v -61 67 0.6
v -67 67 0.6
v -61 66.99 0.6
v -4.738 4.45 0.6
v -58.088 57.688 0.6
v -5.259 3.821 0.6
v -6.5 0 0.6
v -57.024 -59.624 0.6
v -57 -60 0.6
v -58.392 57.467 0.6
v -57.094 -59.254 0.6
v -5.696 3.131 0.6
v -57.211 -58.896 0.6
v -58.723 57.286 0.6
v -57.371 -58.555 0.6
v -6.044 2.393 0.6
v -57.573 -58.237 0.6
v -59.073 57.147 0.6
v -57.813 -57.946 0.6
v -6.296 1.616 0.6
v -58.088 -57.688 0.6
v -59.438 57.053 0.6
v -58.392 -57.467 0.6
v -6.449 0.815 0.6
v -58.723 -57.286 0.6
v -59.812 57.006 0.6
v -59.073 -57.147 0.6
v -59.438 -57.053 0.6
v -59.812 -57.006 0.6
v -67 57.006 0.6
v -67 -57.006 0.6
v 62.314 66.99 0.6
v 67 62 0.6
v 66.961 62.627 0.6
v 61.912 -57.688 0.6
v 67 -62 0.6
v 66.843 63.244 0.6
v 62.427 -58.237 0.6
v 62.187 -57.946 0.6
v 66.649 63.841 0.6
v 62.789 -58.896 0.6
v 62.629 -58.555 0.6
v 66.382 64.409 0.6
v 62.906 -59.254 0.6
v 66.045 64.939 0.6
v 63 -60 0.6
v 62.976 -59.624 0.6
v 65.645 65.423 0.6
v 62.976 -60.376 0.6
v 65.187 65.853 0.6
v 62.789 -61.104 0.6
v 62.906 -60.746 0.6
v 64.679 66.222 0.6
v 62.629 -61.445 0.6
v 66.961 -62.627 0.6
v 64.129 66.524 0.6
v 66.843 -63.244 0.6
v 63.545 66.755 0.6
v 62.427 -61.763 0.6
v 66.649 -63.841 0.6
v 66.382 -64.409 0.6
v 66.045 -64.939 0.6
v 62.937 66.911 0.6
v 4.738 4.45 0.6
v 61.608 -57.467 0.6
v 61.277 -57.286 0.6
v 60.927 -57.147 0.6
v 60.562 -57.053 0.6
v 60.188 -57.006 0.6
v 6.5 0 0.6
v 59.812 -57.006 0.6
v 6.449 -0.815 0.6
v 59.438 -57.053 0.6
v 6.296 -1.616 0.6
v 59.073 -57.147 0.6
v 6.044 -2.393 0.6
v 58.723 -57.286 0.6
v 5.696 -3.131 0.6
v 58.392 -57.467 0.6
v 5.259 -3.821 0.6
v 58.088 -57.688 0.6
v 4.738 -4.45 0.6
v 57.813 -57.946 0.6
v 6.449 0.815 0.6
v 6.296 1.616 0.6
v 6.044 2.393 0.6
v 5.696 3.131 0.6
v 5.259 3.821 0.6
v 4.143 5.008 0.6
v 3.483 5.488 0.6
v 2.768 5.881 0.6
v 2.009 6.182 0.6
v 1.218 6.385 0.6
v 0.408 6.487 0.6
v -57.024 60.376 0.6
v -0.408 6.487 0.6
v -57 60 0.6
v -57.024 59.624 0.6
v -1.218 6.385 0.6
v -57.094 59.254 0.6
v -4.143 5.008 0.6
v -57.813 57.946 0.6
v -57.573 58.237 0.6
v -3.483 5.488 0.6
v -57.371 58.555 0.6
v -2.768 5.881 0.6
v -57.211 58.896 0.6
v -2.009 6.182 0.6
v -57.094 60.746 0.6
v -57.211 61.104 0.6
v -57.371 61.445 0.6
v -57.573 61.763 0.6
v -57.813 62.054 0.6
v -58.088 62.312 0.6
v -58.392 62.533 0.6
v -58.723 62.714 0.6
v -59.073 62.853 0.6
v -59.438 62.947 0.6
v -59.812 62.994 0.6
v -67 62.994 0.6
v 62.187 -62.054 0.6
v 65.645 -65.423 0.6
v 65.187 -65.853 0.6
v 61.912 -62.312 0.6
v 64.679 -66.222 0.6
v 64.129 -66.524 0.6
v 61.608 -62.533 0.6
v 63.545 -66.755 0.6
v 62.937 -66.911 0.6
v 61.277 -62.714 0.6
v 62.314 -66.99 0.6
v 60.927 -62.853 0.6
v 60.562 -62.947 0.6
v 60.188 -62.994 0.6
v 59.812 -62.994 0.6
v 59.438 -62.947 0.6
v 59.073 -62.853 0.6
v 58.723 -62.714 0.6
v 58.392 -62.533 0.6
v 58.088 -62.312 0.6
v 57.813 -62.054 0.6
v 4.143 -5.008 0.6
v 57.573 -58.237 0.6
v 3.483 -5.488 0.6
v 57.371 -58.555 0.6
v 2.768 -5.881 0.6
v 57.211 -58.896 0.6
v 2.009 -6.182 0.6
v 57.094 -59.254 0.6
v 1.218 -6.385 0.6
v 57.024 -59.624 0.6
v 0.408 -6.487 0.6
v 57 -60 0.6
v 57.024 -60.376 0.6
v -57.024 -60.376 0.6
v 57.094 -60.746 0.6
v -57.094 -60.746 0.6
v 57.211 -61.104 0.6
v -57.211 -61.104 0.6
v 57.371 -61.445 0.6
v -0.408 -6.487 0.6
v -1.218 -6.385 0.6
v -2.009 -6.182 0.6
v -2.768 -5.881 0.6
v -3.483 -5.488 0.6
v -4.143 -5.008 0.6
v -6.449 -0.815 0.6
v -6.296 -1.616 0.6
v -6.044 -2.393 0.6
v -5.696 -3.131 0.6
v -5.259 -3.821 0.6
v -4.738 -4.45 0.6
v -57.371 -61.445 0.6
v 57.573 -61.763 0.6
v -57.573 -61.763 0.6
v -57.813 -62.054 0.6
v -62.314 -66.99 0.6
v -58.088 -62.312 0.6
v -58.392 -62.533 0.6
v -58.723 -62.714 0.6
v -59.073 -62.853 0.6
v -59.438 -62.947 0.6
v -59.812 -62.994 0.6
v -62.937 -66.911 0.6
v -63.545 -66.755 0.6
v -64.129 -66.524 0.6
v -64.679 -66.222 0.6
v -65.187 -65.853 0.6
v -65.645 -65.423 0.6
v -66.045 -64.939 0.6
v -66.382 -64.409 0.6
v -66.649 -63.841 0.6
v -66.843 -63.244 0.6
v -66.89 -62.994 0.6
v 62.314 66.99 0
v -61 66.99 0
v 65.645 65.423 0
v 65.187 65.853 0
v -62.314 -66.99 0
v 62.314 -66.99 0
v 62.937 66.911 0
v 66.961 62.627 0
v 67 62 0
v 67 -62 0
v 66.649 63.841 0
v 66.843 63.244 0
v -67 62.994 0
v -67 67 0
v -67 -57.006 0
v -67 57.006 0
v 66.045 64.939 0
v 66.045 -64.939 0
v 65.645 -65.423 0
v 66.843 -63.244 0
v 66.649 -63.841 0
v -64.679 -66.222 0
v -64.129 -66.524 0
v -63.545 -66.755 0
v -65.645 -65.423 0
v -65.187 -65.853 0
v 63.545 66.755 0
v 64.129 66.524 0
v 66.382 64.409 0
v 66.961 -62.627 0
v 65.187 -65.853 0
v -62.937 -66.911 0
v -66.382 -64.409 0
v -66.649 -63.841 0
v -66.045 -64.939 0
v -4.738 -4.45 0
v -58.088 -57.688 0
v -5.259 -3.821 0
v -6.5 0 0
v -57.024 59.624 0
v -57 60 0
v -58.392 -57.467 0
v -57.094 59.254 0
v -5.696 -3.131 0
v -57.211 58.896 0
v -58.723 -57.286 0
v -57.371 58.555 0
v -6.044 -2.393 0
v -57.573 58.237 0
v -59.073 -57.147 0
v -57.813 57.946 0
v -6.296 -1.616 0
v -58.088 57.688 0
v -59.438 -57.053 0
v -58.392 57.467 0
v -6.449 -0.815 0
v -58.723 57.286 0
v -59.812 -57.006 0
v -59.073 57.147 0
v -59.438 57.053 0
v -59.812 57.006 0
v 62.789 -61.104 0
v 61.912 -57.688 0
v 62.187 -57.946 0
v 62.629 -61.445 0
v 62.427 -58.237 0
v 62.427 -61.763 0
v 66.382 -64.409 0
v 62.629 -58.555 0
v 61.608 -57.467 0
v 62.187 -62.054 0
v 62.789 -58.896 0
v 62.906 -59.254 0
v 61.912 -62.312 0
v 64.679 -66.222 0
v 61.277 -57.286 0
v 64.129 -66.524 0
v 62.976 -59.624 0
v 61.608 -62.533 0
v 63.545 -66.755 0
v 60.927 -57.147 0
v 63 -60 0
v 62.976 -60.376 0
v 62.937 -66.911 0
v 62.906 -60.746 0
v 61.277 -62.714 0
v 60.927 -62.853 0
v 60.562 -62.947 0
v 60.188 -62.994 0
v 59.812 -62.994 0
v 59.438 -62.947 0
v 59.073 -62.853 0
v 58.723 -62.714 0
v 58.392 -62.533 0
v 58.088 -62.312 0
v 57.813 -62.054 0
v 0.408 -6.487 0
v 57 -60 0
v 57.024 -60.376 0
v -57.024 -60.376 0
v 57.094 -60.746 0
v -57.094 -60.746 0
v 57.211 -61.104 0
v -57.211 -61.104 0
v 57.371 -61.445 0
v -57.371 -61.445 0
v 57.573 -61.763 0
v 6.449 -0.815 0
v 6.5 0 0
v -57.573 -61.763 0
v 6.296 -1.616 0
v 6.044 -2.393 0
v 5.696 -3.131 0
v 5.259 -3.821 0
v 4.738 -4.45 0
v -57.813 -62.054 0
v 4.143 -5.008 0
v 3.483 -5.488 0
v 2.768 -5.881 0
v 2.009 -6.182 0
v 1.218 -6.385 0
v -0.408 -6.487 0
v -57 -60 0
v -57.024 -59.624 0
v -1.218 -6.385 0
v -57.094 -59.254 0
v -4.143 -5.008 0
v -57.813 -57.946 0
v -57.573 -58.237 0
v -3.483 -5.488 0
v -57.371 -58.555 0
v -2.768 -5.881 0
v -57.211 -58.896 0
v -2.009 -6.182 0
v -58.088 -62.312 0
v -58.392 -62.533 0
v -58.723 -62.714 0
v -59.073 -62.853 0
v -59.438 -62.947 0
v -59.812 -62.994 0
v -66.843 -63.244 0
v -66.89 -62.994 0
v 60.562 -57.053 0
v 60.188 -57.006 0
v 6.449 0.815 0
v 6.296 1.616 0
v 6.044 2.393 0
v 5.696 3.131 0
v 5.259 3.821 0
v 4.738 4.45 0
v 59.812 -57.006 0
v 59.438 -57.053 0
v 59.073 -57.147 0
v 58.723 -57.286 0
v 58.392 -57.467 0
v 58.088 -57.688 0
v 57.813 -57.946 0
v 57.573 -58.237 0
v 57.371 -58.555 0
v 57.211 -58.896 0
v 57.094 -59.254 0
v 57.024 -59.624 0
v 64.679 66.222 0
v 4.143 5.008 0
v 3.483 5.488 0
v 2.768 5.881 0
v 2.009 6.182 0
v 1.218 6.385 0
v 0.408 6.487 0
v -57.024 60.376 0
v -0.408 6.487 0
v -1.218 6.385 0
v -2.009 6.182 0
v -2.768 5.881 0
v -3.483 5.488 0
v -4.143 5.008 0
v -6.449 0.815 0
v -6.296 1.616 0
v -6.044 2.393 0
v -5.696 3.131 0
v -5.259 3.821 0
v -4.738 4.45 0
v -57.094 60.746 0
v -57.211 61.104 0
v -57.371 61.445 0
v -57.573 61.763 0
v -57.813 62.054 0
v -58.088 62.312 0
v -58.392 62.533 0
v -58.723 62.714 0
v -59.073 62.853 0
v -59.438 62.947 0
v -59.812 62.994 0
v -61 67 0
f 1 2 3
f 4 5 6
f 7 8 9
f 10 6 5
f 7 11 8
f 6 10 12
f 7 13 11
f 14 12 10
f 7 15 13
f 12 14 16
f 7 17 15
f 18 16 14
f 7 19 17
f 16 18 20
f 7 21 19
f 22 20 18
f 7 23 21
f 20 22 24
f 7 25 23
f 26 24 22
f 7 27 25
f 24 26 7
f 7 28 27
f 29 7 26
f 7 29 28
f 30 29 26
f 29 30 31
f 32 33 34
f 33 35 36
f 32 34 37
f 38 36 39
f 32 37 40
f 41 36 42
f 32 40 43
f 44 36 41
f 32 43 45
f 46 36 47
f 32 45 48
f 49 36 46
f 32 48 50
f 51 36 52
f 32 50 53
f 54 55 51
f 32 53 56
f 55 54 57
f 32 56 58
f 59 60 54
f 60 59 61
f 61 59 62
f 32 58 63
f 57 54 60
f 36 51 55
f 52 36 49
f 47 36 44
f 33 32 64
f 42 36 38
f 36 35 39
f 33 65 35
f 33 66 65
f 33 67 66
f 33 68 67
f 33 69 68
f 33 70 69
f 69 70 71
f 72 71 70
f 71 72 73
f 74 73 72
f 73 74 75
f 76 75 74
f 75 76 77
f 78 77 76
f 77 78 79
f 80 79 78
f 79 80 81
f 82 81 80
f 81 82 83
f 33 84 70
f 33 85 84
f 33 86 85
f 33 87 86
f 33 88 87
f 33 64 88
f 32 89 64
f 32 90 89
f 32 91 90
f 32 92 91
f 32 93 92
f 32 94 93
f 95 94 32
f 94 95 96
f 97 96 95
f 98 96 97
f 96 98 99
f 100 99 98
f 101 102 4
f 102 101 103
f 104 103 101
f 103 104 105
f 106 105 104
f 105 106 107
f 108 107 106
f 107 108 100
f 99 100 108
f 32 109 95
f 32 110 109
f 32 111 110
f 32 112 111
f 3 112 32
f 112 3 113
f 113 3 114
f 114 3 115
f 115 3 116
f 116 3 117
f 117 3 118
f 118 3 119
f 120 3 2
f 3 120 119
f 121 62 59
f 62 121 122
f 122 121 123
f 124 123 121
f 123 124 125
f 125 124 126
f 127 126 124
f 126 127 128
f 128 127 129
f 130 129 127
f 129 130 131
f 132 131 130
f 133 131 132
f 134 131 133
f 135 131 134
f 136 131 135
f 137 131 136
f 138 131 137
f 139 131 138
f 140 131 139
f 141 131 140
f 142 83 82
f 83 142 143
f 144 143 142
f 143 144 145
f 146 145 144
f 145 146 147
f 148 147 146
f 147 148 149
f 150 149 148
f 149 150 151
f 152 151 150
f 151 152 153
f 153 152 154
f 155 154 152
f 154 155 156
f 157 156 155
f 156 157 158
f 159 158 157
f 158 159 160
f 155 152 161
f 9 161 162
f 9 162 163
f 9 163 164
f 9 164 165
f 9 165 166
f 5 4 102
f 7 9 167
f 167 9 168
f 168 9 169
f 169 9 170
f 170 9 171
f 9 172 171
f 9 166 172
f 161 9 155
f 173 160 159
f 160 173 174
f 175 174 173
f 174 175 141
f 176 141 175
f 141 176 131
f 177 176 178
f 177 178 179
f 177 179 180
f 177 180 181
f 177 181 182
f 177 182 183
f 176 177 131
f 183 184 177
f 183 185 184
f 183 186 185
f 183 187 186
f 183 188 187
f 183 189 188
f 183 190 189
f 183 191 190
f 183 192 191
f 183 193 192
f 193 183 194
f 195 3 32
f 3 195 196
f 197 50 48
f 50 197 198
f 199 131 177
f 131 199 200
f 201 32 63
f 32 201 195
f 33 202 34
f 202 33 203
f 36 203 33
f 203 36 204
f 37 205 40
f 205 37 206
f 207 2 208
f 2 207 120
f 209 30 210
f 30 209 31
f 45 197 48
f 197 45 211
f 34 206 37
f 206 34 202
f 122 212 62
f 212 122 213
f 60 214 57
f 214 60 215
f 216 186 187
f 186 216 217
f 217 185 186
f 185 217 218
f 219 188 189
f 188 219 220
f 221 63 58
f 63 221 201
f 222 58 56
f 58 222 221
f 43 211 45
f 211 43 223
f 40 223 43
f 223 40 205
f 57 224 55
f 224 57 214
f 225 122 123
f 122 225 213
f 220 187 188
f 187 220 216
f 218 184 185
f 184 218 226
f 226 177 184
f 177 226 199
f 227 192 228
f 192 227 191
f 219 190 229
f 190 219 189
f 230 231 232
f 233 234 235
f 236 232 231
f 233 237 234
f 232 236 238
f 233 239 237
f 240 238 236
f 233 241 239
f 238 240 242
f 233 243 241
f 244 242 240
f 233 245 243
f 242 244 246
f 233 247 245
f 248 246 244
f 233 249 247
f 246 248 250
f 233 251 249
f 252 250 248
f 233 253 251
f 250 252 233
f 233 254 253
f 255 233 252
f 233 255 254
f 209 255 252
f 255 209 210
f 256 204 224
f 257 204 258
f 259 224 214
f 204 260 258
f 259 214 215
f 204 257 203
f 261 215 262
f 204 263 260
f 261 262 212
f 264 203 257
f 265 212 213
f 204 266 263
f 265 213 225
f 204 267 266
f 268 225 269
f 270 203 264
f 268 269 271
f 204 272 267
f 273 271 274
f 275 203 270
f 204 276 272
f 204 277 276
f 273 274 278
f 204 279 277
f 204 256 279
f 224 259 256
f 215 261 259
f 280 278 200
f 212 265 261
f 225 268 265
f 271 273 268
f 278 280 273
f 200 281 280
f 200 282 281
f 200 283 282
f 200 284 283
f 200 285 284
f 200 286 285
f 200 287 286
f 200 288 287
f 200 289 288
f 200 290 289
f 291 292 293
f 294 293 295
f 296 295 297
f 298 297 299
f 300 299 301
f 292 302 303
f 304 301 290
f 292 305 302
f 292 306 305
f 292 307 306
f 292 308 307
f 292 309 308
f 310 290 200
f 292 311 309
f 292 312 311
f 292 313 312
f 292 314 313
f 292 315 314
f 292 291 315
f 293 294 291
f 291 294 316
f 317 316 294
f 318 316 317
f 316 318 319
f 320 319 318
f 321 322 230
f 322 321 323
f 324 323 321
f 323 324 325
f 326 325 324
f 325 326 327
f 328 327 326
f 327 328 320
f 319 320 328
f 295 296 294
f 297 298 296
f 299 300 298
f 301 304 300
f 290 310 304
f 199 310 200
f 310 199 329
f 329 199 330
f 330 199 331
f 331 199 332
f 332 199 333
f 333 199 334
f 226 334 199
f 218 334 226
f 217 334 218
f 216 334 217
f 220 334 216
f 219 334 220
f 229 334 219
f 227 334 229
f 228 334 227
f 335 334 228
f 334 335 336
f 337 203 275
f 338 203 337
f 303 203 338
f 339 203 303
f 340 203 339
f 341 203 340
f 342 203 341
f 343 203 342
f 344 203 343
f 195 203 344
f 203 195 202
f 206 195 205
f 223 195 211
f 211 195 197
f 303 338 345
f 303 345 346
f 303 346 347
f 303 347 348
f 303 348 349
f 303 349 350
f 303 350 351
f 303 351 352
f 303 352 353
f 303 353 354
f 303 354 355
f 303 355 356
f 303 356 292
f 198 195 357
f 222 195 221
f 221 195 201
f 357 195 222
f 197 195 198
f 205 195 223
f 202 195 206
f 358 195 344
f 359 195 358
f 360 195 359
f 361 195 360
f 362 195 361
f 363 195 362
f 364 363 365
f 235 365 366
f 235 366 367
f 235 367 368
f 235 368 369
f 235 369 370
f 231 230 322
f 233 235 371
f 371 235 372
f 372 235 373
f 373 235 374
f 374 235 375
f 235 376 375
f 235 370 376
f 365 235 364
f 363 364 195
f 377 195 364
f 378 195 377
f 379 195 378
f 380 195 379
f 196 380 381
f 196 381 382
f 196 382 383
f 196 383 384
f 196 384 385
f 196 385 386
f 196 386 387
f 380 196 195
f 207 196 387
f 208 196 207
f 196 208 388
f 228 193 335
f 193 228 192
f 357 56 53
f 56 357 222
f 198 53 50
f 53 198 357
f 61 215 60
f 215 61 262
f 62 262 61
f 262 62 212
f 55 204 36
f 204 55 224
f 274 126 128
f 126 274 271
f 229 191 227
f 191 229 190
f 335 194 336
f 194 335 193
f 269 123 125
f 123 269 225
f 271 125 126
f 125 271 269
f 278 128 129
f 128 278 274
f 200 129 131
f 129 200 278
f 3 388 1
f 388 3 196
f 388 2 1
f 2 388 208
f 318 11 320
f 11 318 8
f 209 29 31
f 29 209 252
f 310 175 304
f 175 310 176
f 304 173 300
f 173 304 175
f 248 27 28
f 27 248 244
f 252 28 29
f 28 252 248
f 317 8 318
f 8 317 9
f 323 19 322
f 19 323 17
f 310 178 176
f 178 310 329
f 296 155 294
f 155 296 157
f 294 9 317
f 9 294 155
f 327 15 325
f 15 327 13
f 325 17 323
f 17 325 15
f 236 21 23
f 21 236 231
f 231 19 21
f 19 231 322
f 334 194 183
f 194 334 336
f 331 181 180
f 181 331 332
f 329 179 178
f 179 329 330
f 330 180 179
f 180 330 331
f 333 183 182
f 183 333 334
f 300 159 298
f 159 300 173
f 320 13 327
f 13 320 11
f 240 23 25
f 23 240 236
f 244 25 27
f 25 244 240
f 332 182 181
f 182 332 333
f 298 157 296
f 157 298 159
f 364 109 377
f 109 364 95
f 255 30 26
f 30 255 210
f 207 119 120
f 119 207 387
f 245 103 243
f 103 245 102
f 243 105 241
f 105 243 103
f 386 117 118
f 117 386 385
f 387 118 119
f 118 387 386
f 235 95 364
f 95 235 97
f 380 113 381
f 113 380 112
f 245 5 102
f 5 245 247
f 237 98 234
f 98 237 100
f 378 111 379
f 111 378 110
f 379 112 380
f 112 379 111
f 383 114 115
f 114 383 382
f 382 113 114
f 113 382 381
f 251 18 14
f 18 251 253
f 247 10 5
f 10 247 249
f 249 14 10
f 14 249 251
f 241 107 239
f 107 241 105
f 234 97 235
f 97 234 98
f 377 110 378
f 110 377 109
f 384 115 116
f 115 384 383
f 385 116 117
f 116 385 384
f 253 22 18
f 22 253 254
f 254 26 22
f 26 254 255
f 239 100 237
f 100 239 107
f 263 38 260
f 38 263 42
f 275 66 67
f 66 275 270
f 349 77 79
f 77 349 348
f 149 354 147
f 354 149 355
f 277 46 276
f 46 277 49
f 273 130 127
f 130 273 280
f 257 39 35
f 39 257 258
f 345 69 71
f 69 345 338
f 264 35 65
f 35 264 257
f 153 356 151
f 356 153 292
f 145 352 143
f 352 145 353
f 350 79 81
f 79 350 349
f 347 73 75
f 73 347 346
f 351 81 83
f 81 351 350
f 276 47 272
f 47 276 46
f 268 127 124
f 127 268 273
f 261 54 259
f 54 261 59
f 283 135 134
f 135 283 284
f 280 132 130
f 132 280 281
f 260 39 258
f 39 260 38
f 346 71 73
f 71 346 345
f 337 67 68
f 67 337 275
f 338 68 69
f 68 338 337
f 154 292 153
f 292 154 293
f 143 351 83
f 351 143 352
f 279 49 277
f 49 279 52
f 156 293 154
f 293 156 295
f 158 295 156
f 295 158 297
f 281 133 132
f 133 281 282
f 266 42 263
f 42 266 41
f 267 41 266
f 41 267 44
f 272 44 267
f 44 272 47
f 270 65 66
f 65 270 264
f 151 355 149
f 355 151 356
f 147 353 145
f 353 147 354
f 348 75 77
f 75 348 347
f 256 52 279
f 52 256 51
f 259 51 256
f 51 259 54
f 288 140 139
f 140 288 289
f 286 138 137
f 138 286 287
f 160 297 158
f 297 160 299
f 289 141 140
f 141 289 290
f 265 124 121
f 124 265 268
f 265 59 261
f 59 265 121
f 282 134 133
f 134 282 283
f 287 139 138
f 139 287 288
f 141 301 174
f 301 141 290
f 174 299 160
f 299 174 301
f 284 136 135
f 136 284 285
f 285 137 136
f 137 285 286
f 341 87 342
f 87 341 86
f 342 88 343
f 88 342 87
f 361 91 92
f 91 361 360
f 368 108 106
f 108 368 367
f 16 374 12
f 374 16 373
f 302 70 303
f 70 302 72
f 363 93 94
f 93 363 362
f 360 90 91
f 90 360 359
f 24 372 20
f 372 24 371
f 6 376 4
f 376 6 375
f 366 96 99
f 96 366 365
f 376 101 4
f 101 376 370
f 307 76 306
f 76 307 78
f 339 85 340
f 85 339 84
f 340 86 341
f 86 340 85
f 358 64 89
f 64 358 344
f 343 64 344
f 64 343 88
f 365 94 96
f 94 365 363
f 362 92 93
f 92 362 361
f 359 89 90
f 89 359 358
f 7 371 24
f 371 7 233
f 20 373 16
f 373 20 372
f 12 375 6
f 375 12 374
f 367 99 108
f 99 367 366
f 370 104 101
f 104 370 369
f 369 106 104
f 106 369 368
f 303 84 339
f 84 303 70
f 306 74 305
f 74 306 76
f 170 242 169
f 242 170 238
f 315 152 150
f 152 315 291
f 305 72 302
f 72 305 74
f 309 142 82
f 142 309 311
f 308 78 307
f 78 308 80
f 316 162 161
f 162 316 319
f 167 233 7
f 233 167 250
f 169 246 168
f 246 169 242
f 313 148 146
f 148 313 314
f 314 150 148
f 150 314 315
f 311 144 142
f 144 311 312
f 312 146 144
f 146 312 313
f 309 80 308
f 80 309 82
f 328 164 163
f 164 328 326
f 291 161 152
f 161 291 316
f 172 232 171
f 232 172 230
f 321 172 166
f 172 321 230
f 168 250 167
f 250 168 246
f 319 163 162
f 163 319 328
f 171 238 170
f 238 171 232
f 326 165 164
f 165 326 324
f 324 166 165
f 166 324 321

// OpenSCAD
$fn = 50;


difference() {
	union() {
		translate(v = [0, 0, 0]) {
			rotate(a = [0, 0, 0]) {
				hull() {
					translate(v = [-62.0000000000, 62.0000000000, 0]) {
						rotate(a = [0, 0, 0]) {
							translate(v = [0, 0, 0]) {
								rotate(a = [0, 0, 0]) {
									cylinder(h = 0.6000000000, r = 5);
								}
							}
						}
					}
					translate(v = [62.0000000000, 62.0000000000, 0]) {
						rotate(a = [0, 0, 0]) {
							translate(v = [0, 0, 0]) {
								rotate(a = [0, 0, 0]) {
									cylinder(h = 0.6000000000, r = 5);
								}
							}
						}
					}
					translate(v = [-62.0000000000, -62.0000000000, 0]) {
						rotate(a = [0, 0, 0]) {
							translate(v = [0, 0, 0]) {
								rotate(a = [0, 0, 0]) {
									cylinder(h = 0.6000000000, r = 5);
								}
							}
						}
					}
					translate(v = [62.0000000000, -62.0000000000, 0]) {
						rotate(a = [0, 0, 0]) {
							translate(v = [0, 0, 0]) {
								rotate(a = [0, 0, 0]) {
									cylinder(h = 0.6000000000, r = 5);
								}
							}
						}
					}
				}
			}
		}
		translate(v = [-67.0000000000, 61.0000000000, 0]) {
			rotate(a = [0, 0, 0]) {
				cube(size = [6, 6, 0.6000000000]);
			}
		}
	}
	union() {
		translate(v = [-67.5000000000, -60.0000000000, -125]) {
			rotate(a = [0, 0, 0]) {
				hull() {
					translate(v = [7.5000000000, 0, 0]) {
						rotate(a = [0, 0, 0]) {
							translate(v = [0, 0, 0]) {
								rotate(a = [0, 0, 0]) {
									cylinder(h = 250, r = 3.0000000000);
								}
							}
						}
					}
					translate(v = [-7.5000000000, 0, 0]) {
						rotate(a = [0, 0, 0]) {
							translate(v = [0, 0, 0]) {
								rotate(a = [0, 0, 0]) {
									cylinder(h = 250, r = 3.0000000000);
								}
							}
						}
					}
				}
			}
		}
		translate(v = [-67.5000000000, 60.0000000000, -125]) {
			rotate(a = [0, 0, 0]) {
				hull() {
					translate(v = [7.5000000000, 0, 0]) {
						rotate(a = [0, 0, 0]) {
							translate(v = [0, 0, 0]) {
								rotate(a = [0, 0, 0]) {
									cylinder(h = 250, r = 3.0000000000);
								}
							}
						}
					}
					translate(v = [-7.5000000000, 0, 0]) {
						rotate(a = [0, 0, 0]) {
							translate(v = [0, 0, 0]) {
								rotate(a = [0, 0, 0]) {
									cylinder(h = 250, r = 3.0000000000);
								}
							}
						}
					}
				}
			}
		}
		translate(v = [60.0000000000, -60.0000000000, -125.0000000000]) {
			rotate(a = [0, 0, 0]) {
				cylinder(h = 250, r = 3.0000000000);
			}
		}
		translate(v = [0, 0, 0.0000000000]) {
			rotate(a = [0, 0, 0]) {
				cylinder(h = 0.6000000000, r = 6.5000000000);
			}
		}
	}
}
